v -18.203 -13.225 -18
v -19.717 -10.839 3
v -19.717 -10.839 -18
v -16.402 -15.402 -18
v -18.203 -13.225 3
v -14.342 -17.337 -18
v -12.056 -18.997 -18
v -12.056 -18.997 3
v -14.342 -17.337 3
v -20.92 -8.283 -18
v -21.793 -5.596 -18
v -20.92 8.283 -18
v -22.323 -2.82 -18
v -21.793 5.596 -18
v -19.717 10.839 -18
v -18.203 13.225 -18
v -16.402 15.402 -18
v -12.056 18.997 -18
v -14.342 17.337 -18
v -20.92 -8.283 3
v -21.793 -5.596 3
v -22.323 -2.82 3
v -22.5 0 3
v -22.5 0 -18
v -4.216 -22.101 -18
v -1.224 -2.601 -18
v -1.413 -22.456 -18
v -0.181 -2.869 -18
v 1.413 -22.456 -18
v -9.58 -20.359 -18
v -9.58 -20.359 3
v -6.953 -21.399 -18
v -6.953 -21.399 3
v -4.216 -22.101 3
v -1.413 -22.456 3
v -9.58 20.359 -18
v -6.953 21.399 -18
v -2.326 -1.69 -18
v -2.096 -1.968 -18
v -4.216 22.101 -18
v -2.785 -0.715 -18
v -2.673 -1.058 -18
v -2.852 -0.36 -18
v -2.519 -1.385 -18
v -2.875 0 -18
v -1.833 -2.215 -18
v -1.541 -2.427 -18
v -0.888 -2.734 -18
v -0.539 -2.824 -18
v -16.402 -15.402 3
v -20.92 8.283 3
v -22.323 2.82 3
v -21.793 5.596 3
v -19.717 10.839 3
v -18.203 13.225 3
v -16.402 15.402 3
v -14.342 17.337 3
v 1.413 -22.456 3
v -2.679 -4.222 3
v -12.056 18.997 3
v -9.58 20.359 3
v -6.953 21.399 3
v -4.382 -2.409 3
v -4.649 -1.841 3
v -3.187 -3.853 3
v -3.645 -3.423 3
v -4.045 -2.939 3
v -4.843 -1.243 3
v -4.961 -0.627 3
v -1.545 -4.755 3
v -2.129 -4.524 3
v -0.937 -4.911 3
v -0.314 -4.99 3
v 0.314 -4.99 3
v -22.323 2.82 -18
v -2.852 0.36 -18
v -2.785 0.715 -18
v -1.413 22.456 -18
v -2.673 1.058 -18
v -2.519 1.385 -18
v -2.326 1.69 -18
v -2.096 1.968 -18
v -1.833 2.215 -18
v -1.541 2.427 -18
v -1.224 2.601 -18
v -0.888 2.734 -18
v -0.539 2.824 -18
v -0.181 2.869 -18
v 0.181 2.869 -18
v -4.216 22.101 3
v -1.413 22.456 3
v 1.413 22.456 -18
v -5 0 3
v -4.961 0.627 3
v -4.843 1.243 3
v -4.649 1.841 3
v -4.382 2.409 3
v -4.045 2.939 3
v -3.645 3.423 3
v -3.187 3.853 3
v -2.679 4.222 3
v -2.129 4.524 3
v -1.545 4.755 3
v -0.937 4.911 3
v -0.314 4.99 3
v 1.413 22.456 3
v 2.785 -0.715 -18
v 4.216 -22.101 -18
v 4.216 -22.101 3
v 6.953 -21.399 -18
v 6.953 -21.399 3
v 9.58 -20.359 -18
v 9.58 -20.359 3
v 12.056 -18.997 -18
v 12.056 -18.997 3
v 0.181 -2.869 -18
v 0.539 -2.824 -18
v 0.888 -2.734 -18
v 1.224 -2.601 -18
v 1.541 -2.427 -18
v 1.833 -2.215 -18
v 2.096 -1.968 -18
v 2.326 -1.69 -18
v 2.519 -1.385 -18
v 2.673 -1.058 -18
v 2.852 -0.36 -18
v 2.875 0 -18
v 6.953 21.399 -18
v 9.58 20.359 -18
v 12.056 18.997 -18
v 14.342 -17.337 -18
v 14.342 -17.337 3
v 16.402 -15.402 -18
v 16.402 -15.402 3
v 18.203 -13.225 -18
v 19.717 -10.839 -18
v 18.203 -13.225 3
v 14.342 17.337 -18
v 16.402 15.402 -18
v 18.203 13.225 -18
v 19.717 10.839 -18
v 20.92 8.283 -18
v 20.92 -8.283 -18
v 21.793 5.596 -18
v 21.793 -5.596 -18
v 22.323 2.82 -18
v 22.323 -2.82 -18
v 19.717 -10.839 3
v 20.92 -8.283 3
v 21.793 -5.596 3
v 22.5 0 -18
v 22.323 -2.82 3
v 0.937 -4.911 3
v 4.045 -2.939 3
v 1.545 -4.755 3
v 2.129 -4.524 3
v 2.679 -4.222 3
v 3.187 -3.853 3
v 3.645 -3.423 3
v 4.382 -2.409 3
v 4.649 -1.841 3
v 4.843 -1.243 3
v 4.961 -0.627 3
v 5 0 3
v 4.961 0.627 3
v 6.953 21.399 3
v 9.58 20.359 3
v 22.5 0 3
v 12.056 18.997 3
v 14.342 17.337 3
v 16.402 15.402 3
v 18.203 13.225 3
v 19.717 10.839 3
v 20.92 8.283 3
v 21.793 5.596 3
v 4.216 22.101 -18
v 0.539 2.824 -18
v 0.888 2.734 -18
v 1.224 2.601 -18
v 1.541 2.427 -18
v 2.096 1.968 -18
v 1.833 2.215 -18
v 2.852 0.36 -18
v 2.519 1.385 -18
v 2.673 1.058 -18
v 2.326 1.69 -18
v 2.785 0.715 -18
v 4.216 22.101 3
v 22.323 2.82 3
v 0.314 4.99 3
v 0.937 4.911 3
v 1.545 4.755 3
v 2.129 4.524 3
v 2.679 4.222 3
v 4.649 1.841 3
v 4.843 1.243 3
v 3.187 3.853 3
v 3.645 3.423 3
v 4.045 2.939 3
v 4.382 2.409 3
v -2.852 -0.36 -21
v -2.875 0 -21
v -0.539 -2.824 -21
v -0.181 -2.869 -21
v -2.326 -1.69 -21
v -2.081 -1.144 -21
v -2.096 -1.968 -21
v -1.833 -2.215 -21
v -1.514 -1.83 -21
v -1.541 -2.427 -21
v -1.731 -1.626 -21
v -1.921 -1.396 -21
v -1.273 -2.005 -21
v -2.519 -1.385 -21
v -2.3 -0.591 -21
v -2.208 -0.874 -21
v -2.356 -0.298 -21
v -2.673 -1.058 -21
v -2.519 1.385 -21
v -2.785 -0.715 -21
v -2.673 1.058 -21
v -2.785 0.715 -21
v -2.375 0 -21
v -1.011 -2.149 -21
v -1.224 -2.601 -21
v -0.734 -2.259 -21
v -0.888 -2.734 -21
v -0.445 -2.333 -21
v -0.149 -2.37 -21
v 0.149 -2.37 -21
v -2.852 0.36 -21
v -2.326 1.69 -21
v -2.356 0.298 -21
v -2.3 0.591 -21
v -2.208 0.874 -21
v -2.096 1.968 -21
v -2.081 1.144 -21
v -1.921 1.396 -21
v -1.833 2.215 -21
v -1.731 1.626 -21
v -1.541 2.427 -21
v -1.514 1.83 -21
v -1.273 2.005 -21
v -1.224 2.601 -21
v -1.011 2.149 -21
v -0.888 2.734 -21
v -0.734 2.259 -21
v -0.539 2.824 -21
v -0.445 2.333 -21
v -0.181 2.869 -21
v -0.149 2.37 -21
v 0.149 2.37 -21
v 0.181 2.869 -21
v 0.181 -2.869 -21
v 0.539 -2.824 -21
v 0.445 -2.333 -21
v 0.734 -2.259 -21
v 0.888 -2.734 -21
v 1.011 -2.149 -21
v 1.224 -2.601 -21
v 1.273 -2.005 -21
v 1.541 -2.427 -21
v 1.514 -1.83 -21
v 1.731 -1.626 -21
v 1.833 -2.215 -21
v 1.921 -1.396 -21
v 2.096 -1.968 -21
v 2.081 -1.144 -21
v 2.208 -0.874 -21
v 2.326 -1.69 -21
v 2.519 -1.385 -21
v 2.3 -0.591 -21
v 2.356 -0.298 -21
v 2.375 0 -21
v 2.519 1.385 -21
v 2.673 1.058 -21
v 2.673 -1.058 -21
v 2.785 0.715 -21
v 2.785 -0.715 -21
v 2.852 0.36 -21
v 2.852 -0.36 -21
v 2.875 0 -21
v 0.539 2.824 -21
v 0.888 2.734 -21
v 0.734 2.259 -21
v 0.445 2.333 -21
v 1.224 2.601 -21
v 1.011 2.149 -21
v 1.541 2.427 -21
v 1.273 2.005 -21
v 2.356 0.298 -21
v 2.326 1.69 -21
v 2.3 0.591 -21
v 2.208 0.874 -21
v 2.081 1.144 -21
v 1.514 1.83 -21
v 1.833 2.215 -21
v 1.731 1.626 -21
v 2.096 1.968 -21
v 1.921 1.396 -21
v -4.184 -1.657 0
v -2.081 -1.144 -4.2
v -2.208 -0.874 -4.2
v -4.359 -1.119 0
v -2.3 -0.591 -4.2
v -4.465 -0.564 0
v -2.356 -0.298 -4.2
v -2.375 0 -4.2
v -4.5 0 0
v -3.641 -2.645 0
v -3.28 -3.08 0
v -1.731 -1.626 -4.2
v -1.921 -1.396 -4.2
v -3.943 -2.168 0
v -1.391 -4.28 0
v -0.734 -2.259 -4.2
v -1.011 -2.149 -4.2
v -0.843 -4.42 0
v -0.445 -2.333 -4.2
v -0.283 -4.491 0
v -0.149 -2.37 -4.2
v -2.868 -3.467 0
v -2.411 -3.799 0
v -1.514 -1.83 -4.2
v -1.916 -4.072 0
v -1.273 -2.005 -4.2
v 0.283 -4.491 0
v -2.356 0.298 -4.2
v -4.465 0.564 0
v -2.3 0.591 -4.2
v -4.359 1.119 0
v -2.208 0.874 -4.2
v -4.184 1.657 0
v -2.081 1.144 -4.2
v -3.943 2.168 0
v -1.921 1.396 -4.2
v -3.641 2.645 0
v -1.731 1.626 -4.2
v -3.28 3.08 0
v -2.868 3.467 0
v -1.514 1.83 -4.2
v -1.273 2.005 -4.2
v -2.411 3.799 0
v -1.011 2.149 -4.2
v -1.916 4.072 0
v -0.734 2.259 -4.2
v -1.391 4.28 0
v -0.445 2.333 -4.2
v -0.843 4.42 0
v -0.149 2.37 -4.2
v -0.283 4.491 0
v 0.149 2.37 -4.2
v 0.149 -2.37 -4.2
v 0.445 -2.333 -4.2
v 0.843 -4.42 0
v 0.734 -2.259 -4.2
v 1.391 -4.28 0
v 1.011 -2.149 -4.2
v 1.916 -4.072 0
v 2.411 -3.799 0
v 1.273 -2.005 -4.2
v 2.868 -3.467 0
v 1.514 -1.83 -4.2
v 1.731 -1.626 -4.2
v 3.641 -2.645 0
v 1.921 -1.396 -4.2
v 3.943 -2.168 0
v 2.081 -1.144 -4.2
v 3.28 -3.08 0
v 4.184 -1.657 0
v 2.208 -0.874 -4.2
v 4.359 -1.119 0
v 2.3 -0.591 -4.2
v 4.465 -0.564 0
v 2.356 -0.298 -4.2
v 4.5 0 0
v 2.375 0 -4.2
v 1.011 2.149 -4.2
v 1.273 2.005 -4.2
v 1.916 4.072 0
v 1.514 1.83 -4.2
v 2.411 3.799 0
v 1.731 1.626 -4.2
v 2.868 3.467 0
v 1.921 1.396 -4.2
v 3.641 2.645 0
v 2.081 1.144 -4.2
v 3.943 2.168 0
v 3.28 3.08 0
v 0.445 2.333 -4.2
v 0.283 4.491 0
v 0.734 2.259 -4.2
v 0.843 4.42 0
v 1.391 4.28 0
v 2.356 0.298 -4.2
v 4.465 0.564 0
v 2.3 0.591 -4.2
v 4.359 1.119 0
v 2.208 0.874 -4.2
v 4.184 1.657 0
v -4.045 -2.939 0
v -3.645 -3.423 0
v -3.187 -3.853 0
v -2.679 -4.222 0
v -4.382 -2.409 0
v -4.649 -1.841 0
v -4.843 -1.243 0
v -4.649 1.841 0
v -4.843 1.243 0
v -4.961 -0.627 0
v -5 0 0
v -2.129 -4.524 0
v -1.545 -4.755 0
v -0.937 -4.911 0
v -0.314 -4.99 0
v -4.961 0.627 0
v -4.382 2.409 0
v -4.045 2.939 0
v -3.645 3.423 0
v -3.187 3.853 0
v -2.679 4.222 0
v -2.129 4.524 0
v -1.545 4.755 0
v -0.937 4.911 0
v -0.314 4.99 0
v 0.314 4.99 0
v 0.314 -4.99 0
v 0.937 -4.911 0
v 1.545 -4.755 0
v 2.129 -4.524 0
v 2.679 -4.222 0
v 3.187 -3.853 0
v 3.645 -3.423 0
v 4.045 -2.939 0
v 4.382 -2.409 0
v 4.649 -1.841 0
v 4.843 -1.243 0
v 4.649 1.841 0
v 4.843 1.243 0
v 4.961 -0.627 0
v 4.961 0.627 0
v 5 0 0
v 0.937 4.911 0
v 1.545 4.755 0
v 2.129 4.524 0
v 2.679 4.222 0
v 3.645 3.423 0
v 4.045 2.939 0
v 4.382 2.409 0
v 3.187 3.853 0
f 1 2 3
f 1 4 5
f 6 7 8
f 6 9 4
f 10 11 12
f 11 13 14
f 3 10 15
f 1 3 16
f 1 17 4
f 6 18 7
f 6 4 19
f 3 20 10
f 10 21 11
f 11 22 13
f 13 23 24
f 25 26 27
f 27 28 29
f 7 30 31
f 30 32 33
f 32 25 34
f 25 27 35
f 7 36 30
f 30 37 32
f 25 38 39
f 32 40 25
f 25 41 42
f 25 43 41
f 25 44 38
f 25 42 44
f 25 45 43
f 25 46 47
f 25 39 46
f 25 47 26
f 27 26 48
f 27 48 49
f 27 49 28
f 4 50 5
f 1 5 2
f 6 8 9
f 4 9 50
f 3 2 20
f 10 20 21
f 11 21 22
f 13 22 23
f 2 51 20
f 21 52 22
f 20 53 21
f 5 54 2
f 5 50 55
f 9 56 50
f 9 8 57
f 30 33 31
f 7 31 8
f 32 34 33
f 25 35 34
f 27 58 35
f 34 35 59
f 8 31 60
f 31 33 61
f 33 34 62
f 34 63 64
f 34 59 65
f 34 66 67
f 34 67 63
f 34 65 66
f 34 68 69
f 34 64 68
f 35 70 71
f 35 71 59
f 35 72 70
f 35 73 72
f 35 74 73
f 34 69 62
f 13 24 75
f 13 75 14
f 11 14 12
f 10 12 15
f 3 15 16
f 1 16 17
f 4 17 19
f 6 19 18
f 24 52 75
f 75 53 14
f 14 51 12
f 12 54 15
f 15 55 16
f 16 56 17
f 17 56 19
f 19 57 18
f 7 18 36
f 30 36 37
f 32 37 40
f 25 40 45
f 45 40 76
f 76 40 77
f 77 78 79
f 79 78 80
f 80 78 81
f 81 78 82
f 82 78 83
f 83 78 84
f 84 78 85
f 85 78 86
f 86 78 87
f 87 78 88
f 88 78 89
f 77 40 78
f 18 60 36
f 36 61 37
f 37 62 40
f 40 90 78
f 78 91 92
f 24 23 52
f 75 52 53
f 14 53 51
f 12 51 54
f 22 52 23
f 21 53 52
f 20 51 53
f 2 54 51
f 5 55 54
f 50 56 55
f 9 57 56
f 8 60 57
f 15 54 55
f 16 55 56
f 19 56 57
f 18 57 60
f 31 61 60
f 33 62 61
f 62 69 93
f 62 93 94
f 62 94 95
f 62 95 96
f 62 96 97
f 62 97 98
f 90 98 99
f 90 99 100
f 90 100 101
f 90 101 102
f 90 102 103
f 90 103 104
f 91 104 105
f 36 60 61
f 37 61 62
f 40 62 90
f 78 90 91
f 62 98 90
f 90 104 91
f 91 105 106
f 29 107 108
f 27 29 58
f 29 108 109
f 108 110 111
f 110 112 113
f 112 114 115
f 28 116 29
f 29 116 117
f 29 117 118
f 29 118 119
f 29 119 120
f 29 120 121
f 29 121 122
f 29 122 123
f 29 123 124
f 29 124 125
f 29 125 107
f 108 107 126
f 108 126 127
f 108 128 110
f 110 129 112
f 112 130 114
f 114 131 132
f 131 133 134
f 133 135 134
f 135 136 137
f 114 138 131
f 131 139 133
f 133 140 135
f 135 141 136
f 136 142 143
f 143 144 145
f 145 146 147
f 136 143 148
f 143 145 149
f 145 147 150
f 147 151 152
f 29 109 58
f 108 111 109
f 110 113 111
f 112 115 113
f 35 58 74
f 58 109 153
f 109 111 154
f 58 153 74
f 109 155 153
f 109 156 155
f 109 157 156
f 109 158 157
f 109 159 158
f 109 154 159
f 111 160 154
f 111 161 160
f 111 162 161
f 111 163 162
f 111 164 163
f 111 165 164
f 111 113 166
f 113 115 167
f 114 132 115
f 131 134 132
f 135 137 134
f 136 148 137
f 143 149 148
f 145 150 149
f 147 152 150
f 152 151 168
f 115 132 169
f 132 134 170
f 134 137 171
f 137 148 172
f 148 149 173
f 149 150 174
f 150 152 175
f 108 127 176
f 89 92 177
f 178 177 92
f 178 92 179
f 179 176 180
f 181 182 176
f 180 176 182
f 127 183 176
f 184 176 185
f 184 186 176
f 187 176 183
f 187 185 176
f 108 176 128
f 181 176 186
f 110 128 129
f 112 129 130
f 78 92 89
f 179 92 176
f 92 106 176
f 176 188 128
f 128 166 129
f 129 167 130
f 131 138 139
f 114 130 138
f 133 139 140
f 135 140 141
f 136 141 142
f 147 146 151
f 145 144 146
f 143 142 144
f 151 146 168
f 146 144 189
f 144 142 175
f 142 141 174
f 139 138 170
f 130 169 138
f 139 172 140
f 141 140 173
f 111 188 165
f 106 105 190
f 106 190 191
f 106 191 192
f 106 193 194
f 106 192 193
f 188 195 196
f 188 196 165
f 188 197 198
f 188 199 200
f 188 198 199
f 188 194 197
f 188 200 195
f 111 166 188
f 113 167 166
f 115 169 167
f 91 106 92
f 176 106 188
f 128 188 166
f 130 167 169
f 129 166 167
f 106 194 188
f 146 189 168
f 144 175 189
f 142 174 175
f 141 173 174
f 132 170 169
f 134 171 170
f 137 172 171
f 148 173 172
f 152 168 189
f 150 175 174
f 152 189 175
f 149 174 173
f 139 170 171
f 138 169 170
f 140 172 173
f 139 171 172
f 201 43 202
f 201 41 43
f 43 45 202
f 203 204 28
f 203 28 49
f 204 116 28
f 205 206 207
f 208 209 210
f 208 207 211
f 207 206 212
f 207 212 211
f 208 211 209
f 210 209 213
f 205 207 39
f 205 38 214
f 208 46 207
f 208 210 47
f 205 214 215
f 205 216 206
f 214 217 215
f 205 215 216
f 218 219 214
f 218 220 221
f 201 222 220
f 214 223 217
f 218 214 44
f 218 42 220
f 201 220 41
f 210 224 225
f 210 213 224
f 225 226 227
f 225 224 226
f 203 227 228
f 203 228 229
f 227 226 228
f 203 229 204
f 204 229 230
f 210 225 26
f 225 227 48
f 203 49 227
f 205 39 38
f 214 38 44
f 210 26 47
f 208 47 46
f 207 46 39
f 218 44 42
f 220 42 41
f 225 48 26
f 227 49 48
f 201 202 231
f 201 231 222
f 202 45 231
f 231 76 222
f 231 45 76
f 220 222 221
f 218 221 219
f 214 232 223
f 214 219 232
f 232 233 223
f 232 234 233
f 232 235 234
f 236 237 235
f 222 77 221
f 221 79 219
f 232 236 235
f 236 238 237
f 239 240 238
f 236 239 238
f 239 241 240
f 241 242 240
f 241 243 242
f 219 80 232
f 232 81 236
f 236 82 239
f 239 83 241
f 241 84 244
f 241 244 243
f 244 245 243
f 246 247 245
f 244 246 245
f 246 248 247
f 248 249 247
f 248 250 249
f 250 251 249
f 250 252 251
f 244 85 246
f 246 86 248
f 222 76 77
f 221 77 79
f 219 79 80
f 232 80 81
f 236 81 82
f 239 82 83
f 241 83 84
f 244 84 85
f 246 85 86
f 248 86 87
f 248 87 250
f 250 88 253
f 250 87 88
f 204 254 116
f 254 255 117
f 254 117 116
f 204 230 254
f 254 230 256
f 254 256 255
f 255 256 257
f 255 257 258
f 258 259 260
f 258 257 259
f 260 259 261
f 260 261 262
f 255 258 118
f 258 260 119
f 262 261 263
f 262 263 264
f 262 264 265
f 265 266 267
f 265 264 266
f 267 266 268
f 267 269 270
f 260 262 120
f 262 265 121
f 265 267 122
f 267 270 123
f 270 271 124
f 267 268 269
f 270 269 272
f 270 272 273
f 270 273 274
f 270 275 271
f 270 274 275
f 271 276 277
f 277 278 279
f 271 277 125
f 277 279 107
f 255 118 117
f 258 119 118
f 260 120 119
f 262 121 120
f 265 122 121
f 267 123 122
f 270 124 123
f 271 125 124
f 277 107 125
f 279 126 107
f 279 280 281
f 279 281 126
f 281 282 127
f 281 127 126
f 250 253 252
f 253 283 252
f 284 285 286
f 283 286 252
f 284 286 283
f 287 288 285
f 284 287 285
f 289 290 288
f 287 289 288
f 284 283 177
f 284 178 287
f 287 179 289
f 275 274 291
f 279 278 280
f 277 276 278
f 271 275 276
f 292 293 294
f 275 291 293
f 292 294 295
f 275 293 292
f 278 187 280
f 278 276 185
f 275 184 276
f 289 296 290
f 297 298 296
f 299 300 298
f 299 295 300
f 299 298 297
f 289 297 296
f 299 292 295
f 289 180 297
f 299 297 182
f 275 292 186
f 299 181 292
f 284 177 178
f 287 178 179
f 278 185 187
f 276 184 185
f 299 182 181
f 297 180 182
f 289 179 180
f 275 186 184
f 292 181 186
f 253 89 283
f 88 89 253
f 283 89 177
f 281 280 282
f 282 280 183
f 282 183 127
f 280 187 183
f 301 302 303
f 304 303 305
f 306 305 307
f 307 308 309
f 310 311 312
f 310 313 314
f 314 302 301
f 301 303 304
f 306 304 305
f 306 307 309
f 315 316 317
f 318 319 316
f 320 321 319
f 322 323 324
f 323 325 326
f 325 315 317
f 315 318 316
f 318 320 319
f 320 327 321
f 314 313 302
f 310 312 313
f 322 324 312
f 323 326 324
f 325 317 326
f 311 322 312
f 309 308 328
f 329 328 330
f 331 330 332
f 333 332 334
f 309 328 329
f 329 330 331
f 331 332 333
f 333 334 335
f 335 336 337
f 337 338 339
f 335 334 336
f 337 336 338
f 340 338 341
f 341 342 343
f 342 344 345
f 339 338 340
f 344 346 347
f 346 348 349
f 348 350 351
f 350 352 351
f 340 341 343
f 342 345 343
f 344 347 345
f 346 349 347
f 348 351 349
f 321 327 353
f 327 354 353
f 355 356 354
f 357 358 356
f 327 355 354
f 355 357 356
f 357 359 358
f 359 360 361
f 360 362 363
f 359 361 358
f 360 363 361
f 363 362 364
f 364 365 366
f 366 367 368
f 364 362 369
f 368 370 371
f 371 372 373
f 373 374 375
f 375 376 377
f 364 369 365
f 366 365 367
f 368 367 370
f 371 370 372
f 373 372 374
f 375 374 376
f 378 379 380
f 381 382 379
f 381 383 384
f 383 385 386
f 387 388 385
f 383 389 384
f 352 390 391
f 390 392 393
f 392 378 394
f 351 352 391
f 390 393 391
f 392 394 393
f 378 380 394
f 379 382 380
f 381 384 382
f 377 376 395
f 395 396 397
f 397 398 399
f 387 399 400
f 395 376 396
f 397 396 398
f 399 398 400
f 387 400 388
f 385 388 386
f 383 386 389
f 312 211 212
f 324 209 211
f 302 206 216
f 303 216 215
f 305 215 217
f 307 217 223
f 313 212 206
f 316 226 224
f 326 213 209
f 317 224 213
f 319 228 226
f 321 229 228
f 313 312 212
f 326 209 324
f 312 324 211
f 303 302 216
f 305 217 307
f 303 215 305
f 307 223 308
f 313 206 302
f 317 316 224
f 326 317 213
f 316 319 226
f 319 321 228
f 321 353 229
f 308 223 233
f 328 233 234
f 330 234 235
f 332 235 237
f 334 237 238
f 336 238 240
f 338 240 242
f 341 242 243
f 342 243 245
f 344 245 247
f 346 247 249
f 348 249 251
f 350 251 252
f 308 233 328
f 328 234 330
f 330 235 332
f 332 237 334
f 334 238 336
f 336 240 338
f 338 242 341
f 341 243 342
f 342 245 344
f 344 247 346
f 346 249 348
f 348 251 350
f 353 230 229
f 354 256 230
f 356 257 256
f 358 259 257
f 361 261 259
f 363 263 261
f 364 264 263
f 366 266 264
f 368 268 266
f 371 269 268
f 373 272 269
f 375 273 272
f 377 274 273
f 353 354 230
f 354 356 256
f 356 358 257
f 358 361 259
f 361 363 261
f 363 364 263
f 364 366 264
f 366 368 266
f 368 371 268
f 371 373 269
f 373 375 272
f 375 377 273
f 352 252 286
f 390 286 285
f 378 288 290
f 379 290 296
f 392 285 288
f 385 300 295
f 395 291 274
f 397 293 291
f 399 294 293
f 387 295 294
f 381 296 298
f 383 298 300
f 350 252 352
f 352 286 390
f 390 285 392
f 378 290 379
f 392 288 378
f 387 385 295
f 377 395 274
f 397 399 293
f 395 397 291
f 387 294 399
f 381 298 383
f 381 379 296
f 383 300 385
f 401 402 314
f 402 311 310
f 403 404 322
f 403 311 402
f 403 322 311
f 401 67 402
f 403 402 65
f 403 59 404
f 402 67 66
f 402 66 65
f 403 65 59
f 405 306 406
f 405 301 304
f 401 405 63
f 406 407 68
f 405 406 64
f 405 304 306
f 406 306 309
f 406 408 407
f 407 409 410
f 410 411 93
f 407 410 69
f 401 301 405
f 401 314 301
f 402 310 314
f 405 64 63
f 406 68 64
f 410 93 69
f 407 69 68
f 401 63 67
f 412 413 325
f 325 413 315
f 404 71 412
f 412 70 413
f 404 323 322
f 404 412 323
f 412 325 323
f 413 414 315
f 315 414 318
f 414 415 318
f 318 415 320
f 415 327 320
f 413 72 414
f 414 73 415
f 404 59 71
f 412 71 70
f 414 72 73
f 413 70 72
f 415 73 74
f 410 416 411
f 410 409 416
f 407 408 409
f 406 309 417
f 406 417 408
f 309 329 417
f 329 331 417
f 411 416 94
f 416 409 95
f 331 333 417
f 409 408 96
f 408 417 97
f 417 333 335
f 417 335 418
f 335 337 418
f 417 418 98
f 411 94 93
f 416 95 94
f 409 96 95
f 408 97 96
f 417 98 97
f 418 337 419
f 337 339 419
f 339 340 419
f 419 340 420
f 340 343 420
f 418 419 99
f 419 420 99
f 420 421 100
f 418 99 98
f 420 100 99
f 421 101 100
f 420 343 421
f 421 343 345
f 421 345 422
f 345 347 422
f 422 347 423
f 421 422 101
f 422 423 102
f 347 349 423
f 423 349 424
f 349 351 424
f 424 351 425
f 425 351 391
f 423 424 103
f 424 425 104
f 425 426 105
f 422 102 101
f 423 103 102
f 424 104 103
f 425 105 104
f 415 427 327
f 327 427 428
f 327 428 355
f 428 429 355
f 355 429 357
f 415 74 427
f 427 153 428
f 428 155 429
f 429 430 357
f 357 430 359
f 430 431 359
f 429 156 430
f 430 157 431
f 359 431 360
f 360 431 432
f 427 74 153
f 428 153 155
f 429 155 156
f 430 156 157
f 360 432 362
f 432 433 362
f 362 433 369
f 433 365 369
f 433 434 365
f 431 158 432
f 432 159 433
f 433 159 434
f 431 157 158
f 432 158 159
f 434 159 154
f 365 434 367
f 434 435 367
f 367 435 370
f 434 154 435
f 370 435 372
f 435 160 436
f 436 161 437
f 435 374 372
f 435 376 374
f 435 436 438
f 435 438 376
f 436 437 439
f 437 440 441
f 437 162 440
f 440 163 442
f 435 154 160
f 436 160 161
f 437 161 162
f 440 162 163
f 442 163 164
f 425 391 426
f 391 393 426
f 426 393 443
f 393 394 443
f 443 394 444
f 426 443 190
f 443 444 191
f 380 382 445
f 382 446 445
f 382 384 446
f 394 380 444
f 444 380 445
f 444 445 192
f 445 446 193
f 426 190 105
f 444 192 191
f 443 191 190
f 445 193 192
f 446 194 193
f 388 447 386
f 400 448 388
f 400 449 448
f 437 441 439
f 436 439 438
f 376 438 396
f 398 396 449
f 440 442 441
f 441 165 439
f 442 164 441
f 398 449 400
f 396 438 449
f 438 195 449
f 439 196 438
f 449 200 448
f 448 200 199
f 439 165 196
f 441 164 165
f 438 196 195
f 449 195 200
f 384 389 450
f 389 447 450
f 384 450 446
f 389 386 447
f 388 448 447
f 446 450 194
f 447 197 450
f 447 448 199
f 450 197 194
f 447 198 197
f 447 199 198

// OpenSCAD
$fn = 50;


difference() {
	union() {
		translate(v = [0, 0, -18.0000000000]) {
			cylinder(h = 21, r = 22.5000000000);
		}
		#translate(v = [0, 0, -21.0000000000]) {
			cylinder(h = 21, r = 2.8750000000);
		}
	}
	union() {
		translate(v = [0, 0, 0]) {
			rotate(a = [0, 0, 0]) {
				difference() {
					union() {
						translate(v = [0, 0, -21.0000000000]) {
							cylinder(h = 21, r = 2.2500000000);
						}
						translate(v = [0, 0, -4.2000000000]) {
							cylinder(h = 4.2000000000, r1 = 2.3750000000, r2 = 4.5000000000);
						}
						translate(v = [0, 0, -21.0000000000]) {
							cylinder(h = 21, r = 2.3750000000);
						}
						translate(v = [0, 0, -21.0000000000]) {
							cylinder(h = 21, r = 2.2500000000);
						}
					}
					union();
				}
			}
		}
		#cylinder(h = 3, r = 5.0000000000);
	}
}
